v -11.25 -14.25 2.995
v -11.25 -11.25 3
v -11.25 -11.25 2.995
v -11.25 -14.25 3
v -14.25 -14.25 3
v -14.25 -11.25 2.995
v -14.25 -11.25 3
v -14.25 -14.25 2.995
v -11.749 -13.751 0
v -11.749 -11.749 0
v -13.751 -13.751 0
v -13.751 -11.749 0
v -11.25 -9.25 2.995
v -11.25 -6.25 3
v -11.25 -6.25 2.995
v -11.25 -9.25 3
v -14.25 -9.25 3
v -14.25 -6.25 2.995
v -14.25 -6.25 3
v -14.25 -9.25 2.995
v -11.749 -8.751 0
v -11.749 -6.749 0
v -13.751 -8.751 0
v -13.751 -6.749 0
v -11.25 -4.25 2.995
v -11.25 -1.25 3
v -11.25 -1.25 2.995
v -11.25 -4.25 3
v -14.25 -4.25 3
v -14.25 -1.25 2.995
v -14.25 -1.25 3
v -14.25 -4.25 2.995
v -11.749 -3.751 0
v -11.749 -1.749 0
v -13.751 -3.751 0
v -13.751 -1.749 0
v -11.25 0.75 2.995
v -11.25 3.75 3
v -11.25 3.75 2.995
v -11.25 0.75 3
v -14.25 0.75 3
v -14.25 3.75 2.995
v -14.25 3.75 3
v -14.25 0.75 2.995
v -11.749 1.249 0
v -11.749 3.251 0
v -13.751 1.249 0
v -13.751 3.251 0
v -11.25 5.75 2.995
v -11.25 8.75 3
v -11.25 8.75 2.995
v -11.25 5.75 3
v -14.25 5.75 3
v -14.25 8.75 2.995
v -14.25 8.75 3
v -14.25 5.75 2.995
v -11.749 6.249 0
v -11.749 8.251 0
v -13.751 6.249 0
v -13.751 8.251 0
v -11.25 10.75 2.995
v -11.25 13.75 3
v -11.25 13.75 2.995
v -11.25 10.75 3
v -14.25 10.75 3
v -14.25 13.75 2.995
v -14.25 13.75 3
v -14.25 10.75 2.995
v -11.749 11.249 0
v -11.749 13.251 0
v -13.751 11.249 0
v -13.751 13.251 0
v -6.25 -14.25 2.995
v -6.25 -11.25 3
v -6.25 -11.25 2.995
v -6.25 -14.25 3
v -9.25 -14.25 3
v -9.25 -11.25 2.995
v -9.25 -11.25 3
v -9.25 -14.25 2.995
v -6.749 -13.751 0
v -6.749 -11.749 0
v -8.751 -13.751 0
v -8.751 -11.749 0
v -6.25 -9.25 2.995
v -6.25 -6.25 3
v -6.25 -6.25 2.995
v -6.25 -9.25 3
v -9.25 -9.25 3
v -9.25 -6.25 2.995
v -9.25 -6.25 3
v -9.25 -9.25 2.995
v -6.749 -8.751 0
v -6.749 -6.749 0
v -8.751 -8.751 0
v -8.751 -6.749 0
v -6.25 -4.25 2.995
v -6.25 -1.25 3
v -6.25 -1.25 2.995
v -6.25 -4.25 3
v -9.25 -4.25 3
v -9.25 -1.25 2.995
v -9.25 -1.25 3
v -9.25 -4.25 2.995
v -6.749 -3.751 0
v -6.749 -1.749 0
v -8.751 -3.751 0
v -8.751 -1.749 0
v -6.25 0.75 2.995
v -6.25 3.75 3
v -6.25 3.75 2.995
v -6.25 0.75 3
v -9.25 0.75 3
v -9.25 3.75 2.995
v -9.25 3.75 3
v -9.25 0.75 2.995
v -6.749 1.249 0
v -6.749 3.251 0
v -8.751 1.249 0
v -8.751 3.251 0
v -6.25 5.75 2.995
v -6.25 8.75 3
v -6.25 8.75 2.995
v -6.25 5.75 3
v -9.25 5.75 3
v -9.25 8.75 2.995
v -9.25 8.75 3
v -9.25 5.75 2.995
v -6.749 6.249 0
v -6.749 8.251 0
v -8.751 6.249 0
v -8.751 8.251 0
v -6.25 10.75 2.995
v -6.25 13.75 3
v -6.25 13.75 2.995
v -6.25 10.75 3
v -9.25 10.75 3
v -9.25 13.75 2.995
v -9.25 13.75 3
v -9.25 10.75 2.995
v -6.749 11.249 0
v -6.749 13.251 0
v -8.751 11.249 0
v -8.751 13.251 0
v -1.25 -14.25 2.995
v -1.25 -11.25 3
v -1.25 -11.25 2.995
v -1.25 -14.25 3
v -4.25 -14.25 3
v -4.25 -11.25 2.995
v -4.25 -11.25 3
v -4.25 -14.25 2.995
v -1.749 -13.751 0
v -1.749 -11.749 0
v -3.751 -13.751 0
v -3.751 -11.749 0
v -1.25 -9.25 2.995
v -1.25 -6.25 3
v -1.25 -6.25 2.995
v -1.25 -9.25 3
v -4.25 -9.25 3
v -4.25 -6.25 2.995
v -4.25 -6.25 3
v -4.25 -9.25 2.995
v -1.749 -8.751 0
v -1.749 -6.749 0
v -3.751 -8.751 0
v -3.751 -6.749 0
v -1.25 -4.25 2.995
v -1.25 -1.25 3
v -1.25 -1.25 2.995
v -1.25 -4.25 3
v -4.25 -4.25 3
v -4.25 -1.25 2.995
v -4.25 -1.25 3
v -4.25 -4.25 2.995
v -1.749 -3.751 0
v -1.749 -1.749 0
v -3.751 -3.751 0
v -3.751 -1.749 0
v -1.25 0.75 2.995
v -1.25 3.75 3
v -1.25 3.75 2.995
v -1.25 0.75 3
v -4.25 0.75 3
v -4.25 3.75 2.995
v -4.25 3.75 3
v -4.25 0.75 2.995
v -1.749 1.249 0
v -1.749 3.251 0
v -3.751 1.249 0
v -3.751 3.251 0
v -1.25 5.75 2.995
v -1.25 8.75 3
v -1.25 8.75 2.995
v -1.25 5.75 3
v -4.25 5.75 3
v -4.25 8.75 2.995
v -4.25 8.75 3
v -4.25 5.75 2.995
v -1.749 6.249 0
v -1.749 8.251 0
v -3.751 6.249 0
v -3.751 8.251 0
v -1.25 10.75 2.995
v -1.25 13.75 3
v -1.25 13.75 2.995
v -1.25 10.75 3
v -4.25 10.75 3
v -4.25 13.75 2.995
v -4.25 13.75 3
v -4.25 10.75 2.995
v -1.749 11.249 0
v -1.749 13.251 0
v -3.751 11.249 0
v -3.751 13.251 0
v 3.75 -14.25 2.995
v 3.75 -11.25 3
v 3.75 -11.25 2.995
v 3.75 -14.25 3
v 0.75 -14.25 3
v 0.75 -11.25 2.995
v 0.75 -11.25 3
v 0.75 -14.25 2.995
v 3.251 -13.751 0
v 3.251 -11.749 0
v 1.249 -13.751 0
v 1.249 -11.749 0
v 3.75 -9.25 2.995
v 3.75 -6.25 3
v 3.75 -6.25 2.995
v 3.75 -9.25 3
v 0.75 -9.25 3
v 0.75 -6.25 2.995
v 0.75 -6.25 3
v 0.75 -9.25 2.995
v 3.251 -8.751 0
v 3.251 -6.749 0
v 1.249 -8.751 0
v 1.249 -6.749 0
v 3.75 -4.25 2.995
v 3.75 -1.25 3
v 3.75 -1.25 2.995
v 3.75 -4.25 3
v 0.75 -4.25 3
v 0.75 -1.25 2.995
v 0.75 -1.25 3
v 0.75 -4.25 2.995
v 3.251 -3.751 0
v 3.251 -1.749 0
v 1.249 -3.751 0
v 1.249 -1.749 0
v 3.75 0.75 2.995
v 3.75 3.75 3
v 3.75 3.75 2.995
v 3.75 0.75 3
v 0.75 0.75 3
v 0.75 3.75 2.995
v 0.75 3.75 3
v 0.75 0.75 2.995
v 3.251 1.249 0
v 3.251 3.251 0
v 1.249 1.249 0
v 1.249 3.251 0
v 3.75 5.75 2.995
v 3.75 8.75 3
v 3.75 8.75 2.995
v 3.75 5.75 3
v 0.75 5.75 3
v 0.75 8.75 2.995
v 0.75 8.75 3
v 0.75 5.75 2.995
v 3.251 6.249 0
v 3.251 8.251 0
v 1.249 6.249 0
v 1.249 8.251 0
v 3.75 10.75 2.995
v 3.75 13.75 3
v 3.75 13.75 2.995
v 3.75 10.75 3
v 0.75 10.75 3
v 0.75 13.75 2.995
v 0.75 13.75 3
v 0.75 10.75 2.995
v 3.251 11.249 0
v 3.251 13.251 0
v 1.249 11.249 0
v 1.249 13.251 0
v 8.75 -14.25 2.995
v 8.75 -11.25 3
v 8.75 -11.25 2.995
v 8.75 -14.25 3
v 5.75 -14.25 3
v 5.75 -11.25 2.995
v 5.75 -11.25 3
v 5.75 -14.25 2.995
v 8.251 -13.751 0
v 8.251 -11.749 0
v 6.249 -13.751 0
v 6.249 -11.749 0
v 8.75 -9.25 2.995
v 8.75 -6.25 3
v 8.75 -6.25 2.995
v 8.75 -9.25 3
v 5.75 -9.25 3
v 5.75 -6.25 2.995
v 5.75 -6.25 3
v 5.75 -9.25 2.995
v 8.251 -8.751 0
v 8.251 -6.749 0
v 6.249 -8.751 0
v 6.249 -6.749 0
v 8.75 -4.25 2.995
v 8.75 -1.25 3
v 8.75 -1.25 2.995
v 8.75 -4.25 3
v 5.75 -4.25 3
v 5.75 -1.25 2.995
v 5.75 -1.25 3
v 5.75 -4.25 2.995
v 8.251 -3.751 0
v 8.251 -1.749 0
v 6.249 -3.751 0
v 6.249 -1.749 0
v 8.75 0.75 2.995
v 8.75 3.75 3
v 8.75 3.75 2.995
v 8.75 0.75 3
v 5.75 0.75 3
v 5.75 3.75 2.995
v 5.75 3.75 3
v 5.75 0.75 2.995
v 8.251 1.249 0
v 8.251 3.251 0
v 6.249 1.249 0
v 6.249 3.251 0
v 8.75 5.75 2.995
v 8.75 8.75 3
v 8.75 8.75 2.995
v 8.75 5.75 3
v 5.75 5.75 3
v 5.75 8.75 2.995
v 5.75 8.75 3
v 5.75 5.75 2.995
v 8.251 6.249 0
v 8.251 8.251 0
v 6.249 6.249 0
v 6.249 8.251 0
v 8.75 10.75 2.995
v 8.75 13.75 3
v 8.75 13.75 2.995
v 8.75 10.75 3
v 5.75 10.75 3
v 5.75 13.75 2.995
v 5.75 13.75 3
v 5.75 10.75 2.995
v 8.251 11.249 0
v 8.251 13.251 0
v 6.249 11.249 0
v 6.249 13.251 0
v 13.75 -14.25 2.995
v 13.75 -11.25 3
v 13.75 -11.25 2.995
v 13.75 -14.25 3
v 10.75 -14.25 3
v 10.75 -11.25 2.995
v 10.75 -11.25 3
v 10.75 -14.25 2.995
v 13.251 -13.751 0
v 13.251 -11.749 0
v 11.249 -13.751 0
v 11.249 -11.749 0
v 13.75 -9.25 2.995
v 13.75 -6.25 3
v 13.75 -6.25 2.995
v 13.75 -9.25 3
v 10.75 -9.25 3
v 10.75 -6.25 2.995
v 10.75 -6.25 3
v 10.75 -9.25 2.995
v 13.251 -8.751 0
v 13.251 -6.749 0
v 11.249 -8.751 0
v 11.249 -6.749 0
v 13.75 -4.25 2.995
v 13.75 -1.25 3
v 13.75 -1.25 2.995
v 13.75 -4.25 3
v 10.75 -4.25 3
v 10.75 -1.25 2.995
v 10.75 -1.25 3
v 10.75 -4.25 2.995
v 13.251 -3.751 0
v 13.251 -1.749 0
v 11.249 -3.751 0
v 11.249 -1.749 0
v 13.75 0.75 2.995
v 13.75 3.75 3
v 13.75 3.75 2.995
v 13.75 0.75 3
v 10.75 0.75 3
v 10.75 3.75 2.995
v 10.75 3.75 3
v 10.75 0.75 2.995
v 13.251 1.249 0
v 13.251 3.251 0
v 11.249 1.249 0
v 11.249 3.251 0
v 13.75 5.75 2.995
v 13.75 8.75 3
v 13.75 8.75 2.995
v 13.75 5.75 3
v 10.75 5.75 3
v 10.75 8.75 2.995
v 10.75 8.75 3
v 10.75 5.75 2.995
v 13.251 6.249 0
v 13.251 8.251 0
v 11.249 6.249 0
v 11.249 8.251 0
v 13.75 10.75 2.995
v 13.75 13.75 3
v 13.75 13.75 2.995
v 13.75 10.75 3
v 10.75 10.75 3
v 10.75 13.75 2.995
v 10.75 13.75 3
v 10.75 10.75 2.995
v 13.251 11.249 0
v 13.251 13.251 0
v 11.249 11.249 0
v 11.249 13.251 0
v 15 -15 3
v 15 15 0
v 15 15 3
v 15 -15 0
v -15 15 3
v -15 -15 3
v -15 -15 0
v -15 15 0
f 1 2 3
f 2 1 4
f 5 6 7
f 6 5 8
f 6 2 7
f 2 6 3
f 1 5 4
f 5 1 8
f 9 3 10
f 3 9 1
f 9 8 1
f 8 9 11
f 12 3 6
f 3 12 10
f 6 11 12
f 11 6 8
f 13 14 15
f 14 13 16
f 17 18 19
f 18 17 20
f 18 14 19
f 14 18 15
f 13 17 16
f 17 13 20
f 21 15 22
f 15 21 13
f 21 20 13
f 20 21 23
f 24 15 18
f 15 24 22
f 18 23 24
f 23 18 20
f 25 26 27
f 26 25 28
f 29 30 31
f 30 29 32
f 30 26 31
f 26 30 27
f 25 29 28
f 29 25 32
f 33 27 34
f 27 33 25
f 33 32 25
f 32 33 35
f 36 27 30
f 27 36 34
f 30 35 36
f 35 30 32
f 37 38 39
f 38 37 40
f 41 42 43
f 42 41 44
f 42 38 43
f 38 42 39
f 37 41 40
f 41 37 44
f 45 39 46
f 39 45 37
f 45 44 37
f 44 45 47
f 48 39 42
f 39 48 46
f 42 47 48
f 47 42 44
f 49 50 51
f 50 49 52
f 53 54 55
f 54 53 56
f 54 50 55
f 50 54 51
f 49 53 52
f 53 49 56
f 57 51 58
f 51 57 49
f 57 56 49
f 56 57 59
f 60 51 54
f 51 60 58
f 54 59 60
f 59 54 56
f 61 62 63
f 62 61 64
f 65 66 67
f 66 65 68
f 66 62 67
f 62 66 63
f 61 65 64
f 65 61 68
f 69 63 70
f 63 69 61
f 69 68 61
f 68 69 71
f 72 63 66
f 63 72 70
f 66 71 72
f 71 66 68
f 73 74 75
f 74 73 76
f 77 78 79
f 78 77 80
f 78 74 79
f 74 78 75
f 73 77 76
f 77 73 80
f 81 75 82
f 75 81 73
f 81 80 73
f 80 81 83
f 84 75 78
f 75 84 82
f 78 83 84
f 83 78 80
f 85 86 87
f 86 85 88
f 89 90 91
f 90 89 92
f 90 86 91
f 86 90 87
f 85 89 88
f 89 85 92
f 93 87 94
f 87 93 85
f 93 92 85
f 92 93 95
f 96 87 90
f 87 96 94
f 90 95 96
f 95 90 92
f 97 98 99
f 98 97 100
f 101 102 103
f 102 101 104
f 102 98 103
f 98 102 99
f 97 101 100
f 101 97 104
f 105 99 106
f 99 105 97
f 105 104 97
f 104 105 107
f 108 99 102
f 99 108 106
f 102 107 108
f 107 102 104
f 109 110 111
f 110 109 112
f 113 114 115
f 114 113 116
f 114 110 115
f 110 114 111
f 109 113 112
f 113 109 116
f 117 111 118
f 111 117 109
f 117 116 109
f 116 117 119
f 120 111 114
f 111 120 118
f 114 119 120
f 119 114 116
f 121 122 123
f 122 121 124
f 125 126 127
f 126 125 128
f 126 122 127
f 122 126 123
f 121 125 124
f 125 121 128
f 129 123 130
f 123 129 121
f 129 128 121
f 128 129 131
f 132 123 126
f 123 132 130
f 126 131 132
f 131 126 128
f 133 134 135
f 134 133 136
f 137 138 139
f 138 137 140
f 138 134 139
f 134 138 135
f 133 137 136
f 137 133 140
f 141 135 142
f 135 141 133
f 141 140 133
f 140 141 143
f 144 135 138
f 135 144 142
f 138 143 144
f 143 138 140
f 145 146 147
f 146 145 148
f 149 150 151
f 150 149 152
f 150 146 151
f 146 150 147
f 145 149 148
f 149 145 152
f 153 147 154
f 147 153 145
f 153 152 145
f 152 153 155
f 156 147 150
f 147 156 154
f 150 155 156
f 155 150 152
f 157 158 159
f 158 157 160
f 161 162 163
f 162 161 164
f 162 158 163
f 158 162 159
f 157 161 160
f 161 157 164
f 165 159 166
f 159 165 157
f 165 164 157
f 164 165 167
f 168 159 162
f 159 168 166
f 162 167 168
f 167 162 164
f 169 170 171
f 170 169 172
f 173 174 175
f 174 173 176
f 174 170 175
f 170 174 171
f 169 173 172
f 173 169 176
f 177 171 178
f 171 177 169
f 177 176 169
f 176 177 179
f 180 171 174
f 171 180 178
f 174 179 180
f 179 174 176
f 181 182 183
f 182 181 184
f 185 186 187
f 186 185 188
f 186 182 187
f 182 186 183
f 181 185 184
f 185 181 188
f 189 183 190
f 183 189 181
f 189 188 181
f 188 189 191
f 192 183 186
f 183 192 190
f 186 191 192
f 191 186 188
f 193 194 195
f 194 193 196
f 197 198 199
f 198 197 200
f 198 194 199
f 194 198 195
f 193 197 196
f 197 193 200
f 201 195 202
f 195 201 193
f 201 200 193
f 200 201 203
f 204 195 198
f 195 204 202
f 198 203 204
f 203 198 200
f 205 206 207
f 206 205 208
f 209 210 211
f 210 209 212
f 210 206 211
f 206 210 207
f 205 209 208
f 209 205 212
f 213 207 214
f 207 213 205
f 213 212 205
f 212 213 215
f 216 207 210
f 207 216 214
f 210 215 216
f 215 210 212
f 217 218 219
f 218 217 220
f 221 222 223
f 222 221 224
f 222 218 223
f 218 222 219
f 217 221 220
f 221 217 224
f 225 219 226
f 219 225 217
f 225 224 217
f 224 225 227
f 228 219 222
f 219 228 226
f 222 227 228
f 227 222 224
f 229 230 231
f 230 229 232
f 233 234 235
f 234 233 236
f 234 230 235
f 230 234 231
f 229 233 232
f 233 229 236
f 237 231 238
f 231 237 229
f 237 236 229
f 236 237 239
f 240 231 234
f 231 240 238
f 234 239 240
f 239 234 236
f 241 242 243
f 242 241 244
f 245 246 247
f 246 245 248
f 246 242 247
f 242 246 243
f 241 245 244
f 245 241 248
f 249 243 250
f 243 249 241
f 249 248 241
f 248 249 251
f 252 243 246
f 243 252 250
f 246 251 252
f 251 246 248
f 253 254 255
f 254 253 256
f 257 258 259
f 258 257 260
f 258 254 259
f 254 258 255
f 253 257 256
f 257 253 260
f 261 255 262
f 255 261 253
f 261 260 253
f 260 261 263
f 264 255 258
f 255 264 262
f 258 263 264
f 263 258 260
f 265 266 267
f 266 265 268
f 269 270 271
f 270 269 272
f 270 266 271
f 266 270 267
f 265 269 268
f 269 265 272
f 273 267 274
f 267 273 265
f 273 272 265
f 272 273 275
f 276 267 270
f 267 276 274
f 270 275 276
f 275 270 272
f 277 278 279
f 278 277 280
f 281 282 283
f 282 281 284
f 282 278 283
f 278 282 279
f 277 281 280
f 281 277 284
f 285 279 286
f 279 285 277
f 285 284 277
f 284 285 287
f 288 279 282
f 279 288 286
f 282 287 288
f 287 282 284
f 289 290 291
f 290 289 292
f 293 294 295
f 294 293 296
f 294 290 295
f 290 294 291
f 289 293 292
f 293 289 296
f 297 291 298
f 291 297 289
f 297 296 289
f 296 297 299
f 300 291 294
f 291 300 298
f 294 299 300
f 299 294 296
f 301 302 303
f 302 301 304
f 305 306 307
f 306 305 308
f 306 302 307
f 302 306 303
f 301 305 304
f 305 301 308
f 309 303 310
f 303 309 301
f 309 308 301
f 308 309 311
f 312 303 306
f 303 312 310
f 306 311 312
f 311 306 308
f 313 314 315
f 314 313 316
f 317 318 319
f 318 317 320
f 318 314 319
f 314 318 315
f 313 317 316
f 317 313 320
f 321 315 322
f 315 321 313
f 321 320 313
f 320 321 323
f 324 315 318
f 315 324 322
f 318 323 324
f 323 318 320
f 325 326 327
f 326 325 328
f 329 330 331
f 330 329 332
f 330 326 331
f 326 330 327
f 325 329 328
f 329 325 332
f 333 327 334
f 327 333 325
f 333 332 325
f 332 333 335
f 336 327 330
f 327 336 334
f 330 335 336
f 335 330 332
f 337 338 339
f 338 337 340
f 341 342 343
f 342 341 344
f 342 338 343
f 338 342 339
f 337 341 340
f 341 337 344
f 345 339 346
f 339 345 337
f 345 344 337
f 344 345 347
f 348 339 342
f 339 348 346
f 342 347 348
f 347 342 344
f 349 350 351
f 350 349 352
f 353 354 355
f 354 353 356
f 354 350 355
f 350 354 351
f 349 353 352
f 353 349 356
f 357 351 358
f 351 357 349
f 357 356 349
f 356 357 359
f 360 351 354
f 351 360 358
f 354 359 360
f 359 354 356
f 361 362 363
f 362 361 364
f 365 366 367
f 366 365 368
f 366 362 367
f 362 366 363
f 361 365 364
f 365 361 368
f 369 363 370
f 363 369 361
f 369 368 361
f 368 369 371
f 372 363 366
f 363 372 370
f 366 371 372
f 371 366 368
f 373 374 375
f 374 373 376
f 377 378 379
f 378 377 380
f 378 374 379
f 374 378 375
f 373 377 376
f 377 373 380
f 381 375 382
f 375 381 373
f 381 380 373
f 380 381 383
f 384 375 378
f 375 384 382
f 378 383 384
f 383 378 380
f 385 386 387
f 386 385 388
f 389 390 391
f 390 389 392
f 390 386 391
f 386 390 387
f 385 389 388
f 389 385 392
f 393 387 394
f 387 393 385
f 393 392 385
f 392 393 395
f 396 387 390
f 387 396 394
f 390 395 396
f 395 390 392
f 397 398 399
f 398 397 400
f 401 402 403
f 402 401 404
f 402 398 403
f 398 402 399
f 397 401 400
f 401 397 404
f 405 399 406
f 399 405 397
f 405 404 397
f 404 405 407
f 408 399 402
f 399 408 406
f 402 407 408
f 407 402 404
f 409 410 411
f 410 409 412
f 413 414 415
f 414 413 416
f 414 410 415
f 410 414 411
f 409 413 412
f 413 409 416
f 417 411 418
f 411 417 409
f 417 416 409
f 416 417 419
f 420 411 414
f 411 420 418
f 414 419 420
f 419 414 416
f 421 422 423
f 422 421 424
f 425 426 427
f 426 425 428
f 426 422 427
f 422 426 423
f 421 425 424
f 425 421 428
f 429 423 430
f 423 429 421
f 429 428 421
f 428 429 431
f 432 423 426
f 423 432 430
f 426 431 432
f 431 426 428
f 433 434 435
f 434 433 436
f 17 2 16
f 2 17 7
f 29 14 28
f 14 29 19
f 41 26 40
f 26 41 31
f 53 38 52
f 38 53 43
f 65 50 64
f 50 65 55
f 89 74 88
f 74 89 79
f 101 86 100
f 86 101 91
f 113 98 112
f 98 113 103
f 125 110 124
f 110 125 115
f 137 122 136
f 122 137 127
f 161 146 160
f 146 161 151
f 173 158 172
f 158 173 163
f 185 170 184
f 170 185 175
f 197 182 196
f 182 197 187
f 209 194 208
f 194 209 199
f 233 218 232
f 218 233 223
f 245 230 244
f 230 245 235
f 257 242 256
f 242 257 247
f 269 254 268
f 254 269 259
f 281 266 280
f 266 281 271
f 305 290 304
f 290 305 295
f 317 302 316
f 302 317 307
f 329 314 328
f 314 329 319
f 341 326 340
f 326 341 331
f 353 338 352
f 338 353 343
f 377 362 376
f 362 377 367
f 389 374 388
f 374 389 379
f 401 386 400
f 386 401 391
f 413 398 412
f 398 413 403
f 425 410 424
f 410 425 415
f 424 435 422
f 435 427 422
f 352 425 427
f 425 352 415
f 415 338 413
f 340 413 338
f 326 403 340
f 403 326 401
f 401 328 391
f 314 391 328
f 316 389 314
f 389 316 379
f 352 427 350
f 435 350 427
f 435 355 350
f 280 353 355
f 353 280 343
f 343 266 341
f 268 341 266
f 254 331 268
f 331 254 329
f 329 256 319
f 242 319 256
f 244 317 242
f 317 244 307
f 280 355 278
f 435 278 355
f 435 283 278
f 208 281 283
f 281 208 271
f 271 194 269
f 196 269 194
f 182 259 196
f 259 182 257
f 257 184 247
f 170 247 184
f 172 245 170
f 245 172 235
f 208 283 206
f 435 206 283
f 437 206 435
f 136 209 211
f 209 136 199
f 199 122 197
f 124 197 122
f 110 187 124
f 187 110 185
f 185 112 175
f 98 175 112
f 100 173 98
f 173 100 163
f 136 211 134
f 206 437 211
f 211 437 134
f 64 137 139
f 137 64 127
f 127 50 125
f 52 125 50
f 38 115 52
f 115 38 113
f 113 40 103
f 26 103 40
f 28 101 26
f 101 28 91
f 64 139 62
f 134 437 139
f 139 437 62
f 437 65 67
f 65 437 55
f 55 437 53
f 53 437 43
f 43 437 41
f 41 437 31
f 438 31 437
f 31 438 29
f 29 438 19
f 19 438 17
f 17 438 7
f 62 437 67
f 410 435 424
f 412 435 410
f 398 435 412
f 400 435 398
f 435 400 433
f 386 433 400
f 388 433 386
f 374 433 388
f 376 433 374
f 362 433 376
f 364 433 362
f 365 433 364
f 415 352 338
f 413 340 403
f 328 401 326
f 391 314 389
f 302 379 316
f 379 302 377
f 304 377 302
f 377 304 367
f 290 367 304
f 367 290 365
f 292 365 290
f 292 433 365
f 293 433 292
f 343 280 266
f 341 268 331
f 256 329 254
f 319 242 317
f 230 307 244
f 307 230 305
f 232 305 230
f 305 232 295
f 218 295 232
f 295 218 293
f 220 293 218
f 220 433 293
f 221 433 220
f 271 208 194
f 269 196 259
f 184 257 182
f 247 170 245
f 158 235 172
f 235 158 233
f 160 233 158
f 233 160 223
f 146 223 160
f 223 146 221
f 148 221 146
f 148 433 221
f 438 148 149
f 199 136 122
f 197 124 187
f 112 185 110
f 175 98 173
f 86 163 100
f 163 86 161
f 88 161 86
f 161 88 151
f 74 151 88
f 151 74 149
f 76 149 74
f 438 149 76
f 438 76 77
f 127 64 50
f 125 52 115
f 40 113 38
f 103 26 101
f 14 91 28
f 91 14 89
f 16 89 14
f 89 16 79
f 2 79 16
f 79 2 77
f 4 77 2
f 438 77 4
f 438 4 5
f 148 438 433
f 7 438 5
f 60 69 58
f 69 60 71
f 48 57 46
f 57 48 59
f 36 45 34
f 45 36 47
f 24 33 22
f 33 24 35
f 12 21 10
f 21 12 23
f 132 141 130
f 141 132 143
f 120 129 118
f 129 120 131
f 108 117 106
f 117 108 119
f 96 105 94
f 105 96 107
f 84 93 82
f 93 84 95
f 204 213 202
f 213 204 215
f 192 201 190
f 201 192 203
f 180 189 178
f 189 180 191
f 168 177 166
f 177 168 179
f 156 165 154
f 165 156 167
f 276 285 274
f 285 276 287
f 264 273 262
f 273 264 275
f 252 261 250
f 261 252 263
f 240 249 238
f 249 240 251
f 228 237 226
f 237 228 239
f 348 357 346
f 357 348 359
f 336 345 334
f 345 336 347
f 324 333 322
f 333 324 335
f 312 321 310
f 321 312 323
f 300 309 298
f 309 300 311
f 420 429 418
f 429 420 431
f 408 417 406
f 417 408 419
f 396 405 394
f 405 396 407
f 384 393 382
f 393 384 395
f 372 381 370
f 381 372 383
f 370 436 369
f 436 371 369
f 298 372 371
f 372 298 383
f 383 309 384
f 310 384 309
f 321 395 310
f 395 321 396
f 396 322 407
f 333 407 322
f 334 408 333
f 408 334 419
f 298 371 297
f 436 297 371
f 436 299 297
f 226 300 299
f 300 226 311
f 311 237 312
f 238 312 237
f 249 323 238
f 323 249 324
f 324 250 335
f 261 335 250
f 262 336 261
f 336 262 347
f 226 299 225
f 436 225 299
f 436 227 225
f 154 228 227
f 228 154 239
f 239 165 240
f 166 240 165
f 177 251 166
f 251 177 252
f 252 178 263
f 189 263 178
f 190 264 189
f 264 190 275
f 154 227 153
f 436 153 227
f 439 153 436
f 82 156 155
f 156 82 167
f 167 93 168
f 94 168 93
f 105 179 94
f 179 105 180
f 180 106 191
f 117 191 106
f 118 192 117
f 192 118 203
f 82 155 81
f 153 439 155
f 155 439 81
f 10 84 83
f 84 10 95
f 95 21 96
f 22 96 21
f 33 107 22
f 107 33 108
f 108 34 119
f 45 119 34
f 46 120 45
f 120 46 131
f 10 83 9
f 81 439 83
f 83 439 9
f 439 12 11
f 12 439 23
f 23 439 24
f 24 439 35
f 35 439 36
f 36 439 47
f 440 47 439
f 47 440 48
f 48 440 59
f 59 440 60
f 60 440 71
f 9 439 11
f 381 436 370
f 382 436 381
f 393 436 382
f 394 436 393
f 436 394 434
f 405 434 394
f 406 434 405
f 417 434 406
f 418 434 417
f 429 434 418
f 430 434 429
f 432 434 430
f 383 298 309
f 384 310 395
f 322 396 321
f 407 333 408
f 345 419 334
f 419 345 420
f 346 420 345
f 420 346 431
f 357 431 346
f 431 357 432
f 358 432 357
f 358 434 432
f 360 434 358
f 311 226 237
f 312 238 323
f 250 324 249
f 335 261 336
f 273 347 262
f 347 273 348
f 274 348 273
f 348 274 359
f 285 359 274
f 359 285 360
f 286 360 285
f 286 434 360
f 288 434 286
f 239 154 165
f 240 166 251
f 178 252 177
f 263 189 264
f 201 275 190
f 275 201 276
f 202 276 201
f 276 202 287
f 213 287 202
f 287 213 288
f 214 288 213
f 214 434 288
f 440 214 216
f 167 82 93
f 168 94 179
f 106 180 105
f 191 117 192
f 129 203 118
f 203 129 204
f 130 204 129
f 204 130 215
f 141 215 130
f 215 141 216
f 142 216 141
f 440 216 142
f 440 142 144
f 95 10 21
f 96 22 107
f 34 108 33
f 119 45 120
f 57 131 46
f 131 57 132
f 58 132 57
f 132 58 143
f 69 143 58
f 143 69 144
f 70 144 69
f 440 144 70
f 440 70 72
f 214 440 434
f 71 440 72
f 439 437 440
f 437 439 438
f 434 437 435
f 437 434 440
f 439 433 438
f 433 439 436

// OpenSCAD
// Screw Back Plane
// Brian Khuu 2025
// This allows for creating custom screw backplane that you often find in junction boxes etc...
// Found out that these junction boxes typically have screw size of M2 and screw pitch of 5mm
// At least based on https://www.aliexpress.com/item/1005009909495336.html

// Width
width=30;

// Length
length=30;

// Pitch
pitch=5;

// Screw Size
screwSize=2;

// Thickness
thickness=3;

module screwBackPlaneHoles(width, length, thickness=3, pitch=5, screwSize=2)
{
    xCount = floor(width/pitch)-1;
    yCount = floor(length/pitch)-1;
    xCalcWidth = xCount  * pitch + pitch/2;
    yCalcWidth = yCount * pitch + pitch/2;
    translate([-xCalcWidth/2,-yCalcWidth/2,0])
    translate([screwSize/2,screwSize/2,0])
    {
        for (xoffset = [0:1:xCount])
        for (yoffset = [0:1:yCount])
            translate([xoffset*5,yoffset*5,0])
                render()
                {
                    translate([0,0,thickness+0.5]) 
                        cube([screwSize+1,screwSize+1,1], center = true);
                    hull()
                    {
                        translate([0,0,thickness]) 
                            cube([screwSize+1,screwSize+1,0.01], center = true);
                        translate([0,0,0]) 
                            cube([screwSize,screwSize,0.01], center = true);
                    }
                    translate([0,0,-0.5]) 
                        cube([screwSize,screwSize,1], center = true);
                }
    } 
}

module screwBackPlane(width=67, length=117, pitch=5, screwSize=2, thickness=3)
{
    difference()
    {
        translate([0,0,thickness/2]) 
            cube([width, length, thickness], center=true);
        screwBackPlaneHoles(width=width, length=length, thickness=thickness, pitch=pitch, screwSize=screwSize);
    }
}

screwBackPlane(width=width, length=length, pitch=pitch, screwSize=screwSize, thickness=thickness);
